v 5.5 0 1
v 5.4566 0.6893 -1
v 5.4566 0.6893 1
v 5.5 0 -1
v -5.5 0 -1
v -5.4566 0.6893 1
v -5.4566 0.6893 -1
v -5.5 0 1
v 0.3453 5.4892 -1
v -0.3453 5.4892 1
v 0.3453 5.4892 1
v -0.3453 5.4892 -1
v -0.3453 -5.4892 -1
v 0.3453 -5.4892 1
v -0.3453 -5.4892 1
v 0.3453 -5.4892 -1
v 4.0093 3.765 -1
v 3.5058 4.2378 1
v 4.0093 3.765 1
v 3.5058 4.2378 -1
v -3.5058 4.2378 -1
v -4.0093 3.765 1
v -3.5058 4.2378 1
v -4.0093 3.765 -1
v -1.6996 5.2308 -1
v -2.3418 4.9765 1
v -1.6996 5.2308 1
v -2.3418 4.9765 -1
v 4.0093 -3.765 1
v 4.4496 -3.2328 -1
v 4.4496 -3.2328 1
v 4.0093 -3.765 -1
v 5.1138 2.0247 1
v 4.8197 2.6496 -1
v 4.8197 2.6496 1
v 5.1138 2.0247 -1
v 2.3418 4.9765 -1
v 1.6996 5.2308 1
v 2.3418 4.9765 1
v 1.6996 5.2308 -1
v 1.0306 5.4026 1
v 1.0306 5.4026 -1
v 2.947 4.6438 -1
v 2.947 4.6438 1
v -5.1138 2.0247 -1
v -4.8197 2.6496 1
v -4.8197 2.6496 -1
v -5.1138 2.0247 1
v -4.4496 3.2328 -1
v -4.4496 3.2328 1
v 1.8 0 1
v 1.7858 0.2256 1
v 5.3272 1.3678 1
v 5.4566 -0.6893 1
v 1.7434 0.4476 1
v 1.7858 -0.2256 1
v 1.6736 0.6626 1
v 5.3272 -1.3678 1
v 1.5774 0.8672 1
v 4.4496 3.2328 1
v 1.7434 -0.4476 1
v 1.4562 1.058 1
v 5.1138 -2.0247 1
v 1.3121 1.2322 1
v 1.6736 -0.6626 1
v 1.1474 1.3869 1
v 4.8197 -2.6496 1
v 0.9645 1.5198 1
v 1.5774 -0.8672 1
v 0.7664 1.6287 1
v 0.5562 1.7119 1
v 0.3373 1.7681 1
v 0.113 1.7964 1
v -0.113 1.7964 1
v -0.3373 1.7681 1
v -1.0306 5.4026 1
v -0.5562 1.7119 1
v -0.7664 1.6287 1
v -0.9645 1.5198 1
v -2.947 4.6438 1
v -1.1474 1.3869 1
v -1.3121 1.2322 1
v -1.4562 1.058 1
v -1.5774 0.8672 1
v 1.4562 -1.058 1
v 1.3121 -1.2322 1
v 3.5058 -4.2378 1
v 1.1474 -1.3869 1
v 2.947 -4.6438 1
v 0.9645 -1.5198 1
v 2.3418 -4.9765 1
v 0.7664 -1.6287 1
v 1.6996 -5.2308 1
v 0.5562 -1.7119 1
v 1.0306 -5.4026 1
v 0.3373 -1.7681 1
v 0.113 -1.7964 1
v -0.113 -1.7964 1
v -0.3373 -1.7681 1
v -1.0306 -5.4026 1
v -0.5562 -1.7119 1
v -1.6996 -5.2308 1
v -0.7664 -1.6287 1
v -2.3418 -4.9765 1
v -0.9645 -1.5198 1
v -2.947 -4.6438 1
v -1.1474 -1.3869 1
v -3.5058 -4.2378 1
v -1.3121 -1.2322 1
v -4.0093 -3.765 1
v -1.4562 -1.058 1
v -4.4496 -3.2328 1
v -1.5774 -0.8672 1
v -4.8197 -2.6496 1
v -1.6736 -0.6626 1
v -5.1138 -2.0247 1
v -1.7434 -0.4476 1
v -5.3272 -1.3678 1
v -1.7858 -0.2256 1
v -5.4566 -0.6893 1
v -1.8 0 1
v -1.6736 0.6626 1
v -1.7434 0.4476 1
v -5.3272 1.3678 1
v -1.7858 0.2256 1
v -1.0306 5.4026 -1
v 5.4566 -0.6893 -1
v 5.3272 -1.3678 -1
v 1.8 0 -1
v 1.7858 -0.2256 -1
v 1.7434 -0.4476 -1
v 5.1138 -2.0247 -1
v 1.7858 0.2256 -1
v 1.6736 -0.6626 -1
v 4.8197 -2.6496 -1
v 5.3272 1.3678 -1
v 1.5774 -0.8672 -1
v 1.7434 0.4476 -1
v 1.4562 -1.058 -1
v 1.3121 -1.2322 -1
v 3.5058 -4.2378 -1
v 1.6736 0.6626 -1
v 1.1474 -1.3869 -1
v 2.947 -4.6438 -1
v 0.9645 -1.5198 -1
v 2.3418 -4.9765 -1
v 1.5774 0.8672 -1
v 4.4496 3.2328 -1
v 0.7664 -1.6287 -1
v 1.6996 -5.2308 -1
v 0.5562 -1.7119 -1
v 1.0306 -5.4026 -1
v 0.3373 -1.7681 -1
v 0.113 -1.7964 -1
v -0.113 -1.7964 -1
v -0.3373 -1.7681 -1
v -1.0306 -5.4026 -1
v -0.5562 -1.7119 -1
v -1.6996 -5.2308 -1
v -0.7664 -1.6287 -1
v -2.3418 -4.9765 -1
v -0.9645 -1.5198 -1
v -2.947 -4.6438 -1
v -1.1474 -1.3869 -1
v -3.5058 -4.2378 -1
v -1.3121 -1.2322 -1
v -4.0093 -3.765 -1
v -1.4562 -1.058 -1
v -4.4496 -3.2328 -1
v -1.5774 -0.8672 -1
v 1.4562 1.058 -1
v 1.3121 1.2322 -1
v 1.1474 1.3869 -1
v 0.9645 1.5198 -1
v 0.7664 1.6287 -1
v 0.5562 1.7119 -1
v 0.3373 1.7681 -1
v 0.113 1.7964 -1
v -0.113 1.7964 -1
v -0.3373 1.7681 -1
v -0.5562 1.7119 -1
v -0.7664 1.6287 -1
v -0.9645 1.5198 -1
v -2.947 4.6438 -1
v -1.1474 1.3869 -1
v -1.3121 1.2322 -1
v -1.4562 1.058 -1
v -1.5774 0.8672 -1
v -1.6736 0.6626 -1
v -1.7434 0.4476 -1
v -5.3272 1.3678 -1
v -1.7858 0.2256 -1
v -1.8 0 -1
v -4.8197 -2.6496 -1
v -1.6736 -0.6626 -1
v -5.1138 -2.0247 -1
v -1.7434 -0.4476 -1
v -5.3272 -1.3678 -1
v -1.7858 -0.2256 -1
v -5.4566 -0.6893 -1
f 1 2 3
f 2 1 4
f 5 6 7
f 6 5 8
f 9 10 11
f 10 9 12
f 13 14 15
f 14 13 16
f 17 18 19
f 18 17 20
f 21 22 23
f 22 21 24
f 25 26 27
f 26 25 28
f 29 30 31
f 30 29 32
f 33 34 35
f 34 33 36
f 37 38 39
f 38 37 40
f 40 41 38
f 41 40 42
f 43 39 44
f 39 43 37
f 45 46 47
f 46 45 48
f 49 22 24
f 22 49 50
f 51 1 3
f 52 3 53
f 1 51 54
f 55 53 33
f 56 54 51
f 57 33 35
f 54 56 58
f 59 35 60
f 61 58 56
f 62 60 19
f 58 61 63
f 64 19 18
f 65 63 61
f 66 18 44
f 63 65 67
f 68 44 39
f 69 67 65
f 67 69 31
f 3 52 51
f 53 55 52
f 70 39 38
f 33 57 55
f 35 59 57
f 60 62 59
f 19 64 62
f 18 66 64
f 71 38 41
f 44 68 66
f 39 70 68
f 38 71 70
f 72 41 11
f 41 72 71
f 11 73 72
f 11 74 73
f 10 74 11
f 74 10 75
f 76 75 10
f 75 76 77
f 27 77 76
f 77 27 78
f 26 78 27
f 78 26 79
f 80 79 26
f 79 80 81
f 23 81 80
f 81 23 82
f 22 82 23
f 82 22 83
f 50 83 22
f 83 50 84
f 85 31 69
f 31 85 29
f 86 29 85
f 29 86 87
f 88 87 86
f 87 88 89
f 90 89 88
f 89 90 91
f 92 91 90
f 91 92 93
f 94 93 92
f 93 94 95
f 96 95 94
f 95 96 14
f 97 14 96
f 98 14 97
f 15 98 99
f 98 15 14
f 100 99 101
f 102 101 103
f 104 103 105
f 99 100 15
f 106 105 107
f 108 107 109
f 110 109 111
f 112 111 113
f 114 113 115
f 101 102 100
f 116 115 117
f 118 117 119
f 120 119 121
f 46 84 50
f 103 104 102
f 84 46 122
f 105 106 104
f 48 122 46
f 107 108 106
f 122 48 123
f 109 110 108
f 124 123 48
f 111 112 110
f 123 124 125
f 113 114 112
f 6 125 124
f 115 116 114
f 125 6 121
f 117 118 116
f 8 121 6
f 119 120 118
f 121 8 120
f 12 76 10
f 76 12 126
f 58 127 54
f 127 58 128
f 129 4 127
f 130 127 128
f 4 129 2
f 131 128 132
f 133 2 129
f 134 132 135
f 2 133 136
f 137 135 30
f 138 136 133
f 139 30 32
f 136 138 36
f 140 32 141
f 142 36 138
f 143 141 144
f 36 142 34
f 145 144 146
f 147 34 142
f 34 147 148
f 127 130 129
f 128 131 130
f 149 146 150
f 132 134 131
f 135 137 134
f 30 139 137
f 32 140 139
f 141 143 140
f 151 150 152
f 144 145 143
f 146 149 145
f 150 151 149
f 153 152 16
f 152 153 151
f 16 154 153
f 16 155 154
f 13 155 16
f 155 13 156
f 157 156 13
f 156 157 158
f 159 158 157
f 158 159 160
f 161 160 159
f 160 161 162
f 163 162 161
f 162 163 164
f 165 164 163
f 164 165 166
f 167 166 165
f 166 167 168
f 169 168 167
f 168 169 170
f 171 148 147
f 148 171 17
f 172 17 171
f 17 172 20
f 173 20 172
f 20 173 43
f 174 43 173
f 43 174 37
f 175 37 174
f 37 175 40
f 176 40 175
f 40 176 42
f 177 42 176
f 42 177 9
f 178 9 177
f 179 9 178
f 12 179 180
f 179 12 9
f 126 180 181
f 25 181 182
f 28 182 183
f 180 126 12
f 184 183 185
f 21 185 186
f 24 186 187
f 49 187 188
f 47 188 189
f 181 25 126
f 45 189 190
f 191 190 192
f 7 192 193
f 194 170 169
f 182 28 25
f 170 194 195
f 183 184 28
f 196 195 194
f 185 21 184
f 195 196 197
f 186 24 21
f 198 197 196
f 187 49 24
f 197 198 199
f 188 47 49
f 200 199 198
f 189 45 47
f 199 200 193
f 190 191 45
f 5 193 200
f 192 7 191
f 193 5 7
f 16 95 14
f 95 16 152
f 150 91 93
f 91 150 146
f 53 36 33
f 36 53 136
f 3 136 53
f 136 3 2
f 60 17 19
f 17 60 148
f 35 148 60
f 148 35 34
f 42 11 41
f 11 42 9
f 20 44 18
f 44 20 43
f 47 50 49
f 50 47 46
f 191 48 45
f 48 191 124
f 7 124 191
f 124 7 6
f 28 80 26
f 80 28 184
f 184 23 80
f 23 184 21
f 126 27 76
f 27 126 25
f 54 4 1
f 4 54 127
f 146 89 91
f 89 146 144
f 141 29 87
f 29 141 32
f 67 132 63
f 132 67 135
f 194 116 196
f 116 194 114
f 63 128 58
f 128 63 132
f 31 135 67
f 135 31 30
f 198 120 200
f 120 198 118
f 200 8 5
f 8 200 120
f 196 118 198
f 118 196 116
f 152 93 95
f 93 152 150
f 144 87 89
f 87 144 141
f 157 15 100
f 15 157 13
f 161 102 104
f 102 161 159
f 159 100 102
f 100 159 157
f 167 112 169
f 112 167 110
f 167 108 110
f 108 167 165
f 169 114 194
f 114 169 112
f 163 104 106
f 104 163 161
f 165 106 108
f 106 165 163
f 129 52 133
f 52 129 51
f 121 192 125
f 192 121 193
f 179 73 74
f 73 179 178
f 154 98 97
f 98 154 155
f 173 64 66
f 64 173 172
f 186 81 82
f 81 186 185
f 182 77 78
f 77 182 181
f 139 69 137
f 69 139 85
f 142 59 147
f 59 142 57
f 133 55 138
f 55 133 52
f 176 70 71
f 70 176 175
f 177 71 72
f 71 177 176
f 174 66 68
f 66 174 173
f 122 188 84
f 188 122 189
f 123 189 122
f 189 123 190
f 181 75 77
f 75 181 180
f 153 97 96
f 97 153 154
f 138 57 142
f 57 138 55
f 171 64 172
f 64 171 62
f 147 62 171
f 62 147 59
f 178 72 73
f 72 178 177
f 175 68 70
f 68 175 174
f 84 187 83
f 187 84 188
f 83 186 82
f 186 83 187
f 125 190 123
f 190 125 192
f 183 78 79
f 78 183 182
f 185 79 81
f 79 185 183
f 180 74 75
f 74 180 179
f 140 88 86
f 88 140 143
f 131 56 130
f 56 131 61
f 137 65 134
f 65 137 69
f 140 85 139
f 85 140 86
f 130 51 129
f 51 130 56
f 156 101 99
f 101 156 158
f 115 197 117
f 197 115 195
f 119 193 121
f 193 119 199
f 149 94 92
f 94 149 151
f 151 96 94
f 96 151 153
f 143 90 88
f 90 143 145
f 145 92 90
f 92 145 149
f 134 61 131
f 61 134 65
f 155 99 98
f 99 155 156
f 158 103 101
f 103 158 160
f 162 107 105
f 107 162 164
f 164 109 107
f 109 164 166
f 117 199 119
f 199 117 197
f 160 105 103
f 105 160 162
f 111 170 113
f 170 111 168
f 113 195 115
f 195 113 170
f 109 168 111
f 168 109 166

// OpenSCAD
$fn = 50;


difference() {
	union() {
		translate(v = [0, 0, -1.0000000000]) {
			cylinder(h = 2, r = 5.5000000000);
		}
	}
	union() {
		translate(v = [0, 0, -100.0000000000]) {
			cylinder(h = 200, r = 1.8000000000);
		}
	}
}
